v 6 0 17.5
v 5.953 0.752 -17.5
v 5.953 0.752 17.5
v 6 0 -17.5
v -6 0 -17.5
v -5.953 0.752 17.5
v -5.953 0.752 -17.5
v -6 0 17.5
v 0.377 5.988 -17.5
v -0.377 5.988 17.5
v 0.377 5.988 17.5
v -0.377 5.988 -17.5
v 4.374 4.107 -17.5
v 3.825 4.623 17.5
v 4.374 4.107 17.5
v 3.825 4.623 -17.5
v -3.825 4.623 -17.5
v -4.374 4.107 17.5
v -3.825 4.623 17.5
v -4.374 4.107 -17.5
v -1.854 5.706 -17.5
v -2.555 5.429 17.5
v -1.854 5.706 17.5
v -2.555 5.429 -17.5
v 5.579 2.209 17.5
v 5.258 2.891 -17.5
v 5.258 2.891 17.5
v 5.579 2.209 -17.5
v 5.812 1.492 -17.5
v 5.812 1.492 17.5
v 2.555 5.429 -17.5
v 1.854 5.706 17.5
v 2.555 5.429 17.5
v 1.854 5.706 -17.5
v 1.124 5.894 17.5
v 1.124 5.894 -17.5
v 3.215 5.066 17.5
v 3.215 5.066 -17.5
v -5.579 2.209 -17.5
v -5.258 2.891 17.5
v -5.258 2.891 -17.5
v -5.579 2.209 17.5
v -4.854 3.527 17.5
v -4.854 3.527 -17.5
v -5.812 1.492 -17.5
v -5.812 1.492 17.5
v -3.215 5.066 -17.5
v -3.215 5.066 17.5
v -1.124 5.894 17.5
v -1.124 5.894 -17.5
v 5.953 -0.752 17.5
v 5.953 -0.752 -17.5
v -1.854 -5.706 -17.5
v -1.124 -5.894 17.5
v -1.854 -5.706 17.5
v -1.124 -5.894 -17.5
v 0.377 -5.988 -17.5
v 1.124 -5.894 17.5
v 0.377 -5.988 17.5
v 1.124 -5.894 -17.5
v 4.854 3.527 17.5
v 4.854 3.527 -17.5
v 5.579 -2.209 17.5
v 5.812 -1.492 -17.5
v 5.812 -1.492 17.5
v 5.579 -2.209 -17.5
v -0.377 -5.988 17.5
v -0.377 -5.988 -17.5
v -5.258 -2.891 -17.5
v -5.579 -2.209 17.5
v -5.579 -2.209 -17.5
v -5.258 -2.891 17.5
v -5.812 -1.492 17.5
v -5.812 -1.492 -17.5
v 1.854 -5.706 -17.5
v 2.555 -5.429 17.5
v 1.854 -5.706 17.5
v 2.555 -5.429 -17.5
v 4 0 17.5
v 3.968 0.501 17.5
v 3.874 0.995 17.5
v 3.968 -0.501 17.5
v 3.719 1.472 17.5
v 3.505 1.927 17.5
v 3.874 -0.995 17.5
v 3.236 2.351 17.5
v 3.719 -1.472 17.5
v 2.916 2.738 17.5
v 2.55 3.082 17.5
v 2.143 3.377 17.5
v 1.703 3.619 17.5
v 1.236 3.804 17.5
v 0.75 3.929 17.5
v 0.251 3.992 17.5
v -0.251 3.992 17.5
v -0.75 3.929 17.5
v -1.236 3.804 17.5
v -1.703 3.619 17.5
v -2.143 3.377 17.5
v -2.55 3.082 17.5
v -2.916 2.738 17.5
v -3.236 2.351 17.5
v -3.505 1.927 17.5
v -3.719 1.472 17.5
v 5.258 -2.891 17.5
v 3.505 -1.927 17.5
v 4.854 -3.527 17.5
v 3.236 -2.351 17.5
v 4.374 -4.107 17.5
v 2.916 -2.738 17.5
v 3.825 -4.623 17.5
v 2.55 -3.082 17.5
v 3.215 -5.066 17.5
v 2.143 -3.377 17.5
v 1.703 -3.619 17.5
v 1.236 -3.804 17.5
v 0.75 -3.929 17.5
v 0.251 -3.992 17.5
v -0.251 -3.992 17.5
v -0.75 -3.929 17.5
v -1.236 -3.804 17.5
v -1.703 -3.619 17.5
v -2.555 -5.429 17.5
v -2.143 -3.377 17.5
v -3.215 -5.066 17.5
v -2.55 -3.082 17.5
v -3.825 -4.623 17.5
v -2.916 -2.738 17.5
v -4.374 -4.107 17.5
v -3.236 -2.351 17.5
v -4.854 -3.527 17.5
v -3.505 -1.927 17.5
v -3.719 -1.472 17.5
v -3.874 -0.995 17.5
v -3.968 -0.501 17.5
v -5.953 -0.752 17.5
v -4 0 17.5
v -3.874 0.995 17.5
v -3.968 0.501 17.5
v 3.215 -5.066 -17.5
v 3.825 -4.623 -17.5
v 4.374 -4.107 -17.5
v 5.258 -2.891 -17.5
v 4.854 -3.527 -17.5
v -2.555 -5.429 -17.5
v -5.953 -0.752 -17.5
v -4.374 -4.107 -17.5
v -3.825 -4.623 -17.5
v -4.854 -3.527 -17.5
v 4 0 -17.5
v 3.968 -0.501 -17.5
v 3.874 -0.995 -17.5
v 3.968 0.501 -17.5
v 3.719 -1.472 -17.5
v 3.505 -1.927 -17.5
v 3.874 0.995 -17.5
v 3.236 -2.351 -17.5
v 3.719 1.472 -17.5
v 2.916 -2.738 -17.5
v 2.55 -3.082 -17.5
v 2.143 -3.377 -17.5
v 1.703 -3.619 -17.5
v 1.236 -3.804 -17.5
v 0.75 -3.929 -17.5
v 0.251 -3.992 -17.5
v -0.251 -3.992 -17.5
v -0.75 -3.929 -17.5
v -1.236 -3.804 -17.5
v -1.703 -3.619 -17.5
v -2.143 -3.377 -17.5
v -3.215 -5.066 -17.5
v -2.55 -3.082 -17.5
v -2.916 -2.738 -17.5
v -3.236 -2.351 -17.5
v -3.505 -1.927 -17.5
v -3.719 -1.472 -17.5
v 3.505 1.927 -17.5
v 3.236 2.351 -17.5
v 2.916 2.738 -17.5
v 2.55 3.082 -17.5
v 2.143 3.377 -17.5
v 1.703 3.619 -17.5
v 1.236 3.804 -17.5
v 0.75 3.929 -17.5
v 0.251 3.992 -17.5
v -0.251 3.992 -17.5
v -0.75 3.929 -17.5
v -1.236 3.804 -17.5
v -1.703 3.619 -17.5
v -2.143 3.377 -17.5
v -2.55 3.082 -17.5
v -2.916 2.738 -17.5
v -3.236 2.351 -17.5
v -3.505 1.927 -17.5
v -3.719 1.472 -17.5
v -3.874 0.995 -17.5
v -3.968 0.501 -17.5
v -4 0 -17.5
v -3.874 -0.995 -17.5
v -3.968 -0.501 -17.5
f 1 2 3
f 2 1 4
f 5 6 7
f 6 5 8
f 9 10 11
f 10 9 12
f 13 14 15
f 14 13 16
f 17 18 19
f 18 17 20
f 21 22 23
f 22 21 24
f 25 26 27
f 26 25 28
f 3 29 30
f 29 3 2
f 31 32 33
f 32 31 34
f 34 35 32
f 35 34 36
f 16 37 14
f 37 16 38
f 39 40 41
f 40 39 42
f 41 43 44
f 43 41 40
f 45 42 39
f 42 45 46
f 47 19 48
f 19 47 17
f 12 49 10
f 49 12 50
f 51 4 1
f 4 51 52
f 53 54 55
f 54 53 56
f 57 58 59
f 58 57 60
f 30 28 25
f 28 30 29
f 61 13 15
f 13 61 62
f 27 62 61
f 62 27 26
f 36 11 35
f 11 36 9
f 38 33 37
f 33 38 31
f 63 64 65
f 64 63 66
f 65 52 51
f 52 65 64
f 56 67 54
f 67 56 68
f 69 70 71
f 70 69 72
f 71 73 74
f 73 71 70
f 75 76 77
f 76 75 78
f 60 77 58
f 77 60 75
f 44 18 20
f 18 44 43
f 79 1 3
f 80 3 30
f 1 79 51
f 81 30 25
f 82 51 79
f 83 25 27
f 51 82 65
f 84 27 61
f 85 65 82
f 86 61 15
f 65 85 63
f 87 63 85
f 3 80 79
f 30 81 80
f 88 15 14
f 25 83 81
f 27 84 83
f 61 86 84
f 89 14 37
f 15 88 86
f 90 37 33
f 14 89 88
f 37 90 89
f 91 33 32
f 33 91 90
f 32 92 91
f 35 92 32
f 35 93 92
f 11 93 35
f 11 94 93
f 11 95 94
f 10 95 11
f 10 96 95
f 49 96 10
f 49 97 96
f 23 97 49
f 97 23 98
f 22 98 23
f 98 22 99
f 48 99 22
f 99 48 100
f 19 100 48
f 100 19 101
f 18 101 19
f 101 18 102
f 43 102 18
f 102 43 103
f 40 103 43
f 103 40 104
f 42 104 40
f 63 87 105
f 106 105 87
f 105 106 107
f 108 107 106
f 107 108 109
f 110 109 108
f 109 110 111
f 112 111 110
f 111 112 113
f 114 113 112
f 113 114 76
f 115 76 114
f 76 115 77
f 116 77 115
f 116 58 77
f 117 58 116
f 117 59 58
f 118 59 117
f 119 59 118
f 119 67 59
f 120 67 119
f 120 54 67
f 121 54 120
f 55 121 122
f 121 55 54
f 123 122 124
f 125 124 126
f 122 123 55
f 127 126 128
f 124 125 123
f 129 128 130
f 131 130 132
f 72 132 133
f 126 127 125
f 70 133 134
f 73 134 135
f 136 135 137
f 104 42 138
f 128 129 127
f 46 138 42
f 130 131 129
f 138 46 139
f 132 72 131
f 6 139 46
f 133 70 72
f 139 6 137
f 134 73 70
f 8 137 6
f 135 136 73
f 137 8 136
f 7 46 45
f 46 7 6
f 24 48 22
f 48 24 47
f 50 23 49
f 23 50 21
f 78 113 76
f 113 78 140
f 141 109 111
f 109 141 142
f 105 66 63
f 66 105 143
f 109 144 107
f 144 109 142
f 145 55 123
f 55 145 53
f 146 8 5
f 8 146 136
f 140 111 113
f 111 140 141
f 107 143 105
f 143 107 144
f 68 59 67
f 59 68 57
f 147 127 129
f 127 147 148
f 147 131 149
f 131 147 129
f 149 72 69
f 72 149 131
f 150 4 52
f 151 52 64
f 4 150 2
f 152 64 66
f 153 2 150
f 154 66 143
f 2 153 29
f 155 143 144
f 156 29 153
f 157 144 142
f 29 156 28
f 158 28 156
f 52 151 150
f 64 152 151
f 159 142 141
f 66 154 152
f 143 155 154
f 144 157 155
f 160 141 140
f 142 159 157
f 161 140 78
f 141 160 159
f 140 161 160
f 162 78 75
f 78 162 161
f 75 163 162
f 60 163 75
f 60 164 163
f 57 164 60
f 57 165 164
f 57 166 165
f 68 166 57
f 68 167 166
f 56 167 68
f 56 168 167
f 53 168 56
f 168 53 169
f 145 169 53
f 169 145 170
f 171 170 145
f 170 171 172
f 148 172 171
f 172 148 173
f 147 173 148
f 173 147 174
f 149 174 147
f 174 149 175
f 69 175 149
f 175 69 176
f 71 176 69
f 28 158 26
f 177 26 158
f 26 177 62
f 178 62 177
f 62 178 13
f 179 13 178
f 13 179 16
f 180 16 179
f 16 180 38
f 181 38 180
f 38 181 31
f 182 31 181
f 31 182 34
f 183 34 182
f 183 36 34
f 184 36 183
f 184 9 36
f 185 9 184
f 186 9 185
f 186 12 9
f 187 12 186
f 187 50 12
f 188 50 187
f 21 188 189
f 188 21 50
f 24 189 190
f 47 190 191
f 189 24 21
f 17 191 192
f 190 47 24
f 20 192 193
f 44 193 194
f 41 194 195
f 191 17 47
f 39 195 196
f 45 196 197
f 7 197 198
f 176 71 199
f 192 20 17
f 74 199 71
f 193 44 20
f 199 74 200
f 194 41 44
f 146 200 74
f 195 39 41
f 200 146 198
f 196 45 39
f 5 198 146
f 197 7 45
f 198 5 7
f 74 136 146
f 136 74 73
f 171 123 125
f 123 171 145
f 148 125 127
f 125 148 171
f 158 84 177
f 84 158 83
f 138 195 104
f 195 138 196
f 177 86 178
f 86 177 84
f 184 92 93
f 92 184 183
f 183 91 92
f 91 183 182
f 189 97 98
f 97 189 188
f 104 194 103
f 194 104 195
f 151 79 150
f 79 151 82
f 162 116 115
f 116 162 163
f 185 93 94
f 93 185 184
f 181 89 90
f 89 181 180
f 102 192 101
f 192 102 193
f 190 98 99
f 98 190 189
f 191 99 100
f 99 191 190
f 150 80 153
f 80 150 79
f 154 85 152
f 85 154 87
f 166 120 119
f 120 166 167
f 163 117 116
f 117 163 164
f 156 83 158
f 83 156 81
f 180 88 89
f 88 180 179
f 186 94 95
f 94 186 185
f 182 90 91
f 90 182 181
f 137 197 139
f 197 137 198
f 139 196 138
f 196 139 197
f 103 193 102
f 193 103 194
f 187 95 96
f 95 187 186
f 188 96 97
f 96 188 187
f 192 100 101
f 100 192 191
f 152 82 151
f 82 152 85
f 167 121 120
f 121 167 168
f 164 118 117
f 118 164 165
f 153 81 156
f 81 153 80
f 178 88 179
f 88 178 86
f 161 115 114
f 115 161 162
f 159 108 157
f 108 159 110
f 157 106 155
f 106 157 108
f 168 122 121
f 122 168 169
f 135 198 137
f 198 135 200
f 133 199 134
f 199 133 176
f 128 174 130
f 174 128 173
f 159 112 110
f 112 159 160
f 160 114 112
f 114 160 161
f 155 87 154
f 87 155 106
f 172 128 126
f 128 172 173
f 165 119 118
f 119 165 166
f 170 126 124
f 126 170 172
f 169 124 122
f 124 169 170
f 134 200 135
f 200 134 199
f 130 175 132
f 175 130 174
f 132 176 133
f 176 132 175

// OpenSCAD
$fn = 50;


difference() {
	union() {
		translate(v = [0, 0, -17.5000000000]) {
			cylinder(h = 35, r = 6.0000000000);
		}
	}
	union() {
		translate(v = [0, 0, -100.0000000000]) {
			cylinder(h = 200, r = 4.0000000000);
		}
	}
}
